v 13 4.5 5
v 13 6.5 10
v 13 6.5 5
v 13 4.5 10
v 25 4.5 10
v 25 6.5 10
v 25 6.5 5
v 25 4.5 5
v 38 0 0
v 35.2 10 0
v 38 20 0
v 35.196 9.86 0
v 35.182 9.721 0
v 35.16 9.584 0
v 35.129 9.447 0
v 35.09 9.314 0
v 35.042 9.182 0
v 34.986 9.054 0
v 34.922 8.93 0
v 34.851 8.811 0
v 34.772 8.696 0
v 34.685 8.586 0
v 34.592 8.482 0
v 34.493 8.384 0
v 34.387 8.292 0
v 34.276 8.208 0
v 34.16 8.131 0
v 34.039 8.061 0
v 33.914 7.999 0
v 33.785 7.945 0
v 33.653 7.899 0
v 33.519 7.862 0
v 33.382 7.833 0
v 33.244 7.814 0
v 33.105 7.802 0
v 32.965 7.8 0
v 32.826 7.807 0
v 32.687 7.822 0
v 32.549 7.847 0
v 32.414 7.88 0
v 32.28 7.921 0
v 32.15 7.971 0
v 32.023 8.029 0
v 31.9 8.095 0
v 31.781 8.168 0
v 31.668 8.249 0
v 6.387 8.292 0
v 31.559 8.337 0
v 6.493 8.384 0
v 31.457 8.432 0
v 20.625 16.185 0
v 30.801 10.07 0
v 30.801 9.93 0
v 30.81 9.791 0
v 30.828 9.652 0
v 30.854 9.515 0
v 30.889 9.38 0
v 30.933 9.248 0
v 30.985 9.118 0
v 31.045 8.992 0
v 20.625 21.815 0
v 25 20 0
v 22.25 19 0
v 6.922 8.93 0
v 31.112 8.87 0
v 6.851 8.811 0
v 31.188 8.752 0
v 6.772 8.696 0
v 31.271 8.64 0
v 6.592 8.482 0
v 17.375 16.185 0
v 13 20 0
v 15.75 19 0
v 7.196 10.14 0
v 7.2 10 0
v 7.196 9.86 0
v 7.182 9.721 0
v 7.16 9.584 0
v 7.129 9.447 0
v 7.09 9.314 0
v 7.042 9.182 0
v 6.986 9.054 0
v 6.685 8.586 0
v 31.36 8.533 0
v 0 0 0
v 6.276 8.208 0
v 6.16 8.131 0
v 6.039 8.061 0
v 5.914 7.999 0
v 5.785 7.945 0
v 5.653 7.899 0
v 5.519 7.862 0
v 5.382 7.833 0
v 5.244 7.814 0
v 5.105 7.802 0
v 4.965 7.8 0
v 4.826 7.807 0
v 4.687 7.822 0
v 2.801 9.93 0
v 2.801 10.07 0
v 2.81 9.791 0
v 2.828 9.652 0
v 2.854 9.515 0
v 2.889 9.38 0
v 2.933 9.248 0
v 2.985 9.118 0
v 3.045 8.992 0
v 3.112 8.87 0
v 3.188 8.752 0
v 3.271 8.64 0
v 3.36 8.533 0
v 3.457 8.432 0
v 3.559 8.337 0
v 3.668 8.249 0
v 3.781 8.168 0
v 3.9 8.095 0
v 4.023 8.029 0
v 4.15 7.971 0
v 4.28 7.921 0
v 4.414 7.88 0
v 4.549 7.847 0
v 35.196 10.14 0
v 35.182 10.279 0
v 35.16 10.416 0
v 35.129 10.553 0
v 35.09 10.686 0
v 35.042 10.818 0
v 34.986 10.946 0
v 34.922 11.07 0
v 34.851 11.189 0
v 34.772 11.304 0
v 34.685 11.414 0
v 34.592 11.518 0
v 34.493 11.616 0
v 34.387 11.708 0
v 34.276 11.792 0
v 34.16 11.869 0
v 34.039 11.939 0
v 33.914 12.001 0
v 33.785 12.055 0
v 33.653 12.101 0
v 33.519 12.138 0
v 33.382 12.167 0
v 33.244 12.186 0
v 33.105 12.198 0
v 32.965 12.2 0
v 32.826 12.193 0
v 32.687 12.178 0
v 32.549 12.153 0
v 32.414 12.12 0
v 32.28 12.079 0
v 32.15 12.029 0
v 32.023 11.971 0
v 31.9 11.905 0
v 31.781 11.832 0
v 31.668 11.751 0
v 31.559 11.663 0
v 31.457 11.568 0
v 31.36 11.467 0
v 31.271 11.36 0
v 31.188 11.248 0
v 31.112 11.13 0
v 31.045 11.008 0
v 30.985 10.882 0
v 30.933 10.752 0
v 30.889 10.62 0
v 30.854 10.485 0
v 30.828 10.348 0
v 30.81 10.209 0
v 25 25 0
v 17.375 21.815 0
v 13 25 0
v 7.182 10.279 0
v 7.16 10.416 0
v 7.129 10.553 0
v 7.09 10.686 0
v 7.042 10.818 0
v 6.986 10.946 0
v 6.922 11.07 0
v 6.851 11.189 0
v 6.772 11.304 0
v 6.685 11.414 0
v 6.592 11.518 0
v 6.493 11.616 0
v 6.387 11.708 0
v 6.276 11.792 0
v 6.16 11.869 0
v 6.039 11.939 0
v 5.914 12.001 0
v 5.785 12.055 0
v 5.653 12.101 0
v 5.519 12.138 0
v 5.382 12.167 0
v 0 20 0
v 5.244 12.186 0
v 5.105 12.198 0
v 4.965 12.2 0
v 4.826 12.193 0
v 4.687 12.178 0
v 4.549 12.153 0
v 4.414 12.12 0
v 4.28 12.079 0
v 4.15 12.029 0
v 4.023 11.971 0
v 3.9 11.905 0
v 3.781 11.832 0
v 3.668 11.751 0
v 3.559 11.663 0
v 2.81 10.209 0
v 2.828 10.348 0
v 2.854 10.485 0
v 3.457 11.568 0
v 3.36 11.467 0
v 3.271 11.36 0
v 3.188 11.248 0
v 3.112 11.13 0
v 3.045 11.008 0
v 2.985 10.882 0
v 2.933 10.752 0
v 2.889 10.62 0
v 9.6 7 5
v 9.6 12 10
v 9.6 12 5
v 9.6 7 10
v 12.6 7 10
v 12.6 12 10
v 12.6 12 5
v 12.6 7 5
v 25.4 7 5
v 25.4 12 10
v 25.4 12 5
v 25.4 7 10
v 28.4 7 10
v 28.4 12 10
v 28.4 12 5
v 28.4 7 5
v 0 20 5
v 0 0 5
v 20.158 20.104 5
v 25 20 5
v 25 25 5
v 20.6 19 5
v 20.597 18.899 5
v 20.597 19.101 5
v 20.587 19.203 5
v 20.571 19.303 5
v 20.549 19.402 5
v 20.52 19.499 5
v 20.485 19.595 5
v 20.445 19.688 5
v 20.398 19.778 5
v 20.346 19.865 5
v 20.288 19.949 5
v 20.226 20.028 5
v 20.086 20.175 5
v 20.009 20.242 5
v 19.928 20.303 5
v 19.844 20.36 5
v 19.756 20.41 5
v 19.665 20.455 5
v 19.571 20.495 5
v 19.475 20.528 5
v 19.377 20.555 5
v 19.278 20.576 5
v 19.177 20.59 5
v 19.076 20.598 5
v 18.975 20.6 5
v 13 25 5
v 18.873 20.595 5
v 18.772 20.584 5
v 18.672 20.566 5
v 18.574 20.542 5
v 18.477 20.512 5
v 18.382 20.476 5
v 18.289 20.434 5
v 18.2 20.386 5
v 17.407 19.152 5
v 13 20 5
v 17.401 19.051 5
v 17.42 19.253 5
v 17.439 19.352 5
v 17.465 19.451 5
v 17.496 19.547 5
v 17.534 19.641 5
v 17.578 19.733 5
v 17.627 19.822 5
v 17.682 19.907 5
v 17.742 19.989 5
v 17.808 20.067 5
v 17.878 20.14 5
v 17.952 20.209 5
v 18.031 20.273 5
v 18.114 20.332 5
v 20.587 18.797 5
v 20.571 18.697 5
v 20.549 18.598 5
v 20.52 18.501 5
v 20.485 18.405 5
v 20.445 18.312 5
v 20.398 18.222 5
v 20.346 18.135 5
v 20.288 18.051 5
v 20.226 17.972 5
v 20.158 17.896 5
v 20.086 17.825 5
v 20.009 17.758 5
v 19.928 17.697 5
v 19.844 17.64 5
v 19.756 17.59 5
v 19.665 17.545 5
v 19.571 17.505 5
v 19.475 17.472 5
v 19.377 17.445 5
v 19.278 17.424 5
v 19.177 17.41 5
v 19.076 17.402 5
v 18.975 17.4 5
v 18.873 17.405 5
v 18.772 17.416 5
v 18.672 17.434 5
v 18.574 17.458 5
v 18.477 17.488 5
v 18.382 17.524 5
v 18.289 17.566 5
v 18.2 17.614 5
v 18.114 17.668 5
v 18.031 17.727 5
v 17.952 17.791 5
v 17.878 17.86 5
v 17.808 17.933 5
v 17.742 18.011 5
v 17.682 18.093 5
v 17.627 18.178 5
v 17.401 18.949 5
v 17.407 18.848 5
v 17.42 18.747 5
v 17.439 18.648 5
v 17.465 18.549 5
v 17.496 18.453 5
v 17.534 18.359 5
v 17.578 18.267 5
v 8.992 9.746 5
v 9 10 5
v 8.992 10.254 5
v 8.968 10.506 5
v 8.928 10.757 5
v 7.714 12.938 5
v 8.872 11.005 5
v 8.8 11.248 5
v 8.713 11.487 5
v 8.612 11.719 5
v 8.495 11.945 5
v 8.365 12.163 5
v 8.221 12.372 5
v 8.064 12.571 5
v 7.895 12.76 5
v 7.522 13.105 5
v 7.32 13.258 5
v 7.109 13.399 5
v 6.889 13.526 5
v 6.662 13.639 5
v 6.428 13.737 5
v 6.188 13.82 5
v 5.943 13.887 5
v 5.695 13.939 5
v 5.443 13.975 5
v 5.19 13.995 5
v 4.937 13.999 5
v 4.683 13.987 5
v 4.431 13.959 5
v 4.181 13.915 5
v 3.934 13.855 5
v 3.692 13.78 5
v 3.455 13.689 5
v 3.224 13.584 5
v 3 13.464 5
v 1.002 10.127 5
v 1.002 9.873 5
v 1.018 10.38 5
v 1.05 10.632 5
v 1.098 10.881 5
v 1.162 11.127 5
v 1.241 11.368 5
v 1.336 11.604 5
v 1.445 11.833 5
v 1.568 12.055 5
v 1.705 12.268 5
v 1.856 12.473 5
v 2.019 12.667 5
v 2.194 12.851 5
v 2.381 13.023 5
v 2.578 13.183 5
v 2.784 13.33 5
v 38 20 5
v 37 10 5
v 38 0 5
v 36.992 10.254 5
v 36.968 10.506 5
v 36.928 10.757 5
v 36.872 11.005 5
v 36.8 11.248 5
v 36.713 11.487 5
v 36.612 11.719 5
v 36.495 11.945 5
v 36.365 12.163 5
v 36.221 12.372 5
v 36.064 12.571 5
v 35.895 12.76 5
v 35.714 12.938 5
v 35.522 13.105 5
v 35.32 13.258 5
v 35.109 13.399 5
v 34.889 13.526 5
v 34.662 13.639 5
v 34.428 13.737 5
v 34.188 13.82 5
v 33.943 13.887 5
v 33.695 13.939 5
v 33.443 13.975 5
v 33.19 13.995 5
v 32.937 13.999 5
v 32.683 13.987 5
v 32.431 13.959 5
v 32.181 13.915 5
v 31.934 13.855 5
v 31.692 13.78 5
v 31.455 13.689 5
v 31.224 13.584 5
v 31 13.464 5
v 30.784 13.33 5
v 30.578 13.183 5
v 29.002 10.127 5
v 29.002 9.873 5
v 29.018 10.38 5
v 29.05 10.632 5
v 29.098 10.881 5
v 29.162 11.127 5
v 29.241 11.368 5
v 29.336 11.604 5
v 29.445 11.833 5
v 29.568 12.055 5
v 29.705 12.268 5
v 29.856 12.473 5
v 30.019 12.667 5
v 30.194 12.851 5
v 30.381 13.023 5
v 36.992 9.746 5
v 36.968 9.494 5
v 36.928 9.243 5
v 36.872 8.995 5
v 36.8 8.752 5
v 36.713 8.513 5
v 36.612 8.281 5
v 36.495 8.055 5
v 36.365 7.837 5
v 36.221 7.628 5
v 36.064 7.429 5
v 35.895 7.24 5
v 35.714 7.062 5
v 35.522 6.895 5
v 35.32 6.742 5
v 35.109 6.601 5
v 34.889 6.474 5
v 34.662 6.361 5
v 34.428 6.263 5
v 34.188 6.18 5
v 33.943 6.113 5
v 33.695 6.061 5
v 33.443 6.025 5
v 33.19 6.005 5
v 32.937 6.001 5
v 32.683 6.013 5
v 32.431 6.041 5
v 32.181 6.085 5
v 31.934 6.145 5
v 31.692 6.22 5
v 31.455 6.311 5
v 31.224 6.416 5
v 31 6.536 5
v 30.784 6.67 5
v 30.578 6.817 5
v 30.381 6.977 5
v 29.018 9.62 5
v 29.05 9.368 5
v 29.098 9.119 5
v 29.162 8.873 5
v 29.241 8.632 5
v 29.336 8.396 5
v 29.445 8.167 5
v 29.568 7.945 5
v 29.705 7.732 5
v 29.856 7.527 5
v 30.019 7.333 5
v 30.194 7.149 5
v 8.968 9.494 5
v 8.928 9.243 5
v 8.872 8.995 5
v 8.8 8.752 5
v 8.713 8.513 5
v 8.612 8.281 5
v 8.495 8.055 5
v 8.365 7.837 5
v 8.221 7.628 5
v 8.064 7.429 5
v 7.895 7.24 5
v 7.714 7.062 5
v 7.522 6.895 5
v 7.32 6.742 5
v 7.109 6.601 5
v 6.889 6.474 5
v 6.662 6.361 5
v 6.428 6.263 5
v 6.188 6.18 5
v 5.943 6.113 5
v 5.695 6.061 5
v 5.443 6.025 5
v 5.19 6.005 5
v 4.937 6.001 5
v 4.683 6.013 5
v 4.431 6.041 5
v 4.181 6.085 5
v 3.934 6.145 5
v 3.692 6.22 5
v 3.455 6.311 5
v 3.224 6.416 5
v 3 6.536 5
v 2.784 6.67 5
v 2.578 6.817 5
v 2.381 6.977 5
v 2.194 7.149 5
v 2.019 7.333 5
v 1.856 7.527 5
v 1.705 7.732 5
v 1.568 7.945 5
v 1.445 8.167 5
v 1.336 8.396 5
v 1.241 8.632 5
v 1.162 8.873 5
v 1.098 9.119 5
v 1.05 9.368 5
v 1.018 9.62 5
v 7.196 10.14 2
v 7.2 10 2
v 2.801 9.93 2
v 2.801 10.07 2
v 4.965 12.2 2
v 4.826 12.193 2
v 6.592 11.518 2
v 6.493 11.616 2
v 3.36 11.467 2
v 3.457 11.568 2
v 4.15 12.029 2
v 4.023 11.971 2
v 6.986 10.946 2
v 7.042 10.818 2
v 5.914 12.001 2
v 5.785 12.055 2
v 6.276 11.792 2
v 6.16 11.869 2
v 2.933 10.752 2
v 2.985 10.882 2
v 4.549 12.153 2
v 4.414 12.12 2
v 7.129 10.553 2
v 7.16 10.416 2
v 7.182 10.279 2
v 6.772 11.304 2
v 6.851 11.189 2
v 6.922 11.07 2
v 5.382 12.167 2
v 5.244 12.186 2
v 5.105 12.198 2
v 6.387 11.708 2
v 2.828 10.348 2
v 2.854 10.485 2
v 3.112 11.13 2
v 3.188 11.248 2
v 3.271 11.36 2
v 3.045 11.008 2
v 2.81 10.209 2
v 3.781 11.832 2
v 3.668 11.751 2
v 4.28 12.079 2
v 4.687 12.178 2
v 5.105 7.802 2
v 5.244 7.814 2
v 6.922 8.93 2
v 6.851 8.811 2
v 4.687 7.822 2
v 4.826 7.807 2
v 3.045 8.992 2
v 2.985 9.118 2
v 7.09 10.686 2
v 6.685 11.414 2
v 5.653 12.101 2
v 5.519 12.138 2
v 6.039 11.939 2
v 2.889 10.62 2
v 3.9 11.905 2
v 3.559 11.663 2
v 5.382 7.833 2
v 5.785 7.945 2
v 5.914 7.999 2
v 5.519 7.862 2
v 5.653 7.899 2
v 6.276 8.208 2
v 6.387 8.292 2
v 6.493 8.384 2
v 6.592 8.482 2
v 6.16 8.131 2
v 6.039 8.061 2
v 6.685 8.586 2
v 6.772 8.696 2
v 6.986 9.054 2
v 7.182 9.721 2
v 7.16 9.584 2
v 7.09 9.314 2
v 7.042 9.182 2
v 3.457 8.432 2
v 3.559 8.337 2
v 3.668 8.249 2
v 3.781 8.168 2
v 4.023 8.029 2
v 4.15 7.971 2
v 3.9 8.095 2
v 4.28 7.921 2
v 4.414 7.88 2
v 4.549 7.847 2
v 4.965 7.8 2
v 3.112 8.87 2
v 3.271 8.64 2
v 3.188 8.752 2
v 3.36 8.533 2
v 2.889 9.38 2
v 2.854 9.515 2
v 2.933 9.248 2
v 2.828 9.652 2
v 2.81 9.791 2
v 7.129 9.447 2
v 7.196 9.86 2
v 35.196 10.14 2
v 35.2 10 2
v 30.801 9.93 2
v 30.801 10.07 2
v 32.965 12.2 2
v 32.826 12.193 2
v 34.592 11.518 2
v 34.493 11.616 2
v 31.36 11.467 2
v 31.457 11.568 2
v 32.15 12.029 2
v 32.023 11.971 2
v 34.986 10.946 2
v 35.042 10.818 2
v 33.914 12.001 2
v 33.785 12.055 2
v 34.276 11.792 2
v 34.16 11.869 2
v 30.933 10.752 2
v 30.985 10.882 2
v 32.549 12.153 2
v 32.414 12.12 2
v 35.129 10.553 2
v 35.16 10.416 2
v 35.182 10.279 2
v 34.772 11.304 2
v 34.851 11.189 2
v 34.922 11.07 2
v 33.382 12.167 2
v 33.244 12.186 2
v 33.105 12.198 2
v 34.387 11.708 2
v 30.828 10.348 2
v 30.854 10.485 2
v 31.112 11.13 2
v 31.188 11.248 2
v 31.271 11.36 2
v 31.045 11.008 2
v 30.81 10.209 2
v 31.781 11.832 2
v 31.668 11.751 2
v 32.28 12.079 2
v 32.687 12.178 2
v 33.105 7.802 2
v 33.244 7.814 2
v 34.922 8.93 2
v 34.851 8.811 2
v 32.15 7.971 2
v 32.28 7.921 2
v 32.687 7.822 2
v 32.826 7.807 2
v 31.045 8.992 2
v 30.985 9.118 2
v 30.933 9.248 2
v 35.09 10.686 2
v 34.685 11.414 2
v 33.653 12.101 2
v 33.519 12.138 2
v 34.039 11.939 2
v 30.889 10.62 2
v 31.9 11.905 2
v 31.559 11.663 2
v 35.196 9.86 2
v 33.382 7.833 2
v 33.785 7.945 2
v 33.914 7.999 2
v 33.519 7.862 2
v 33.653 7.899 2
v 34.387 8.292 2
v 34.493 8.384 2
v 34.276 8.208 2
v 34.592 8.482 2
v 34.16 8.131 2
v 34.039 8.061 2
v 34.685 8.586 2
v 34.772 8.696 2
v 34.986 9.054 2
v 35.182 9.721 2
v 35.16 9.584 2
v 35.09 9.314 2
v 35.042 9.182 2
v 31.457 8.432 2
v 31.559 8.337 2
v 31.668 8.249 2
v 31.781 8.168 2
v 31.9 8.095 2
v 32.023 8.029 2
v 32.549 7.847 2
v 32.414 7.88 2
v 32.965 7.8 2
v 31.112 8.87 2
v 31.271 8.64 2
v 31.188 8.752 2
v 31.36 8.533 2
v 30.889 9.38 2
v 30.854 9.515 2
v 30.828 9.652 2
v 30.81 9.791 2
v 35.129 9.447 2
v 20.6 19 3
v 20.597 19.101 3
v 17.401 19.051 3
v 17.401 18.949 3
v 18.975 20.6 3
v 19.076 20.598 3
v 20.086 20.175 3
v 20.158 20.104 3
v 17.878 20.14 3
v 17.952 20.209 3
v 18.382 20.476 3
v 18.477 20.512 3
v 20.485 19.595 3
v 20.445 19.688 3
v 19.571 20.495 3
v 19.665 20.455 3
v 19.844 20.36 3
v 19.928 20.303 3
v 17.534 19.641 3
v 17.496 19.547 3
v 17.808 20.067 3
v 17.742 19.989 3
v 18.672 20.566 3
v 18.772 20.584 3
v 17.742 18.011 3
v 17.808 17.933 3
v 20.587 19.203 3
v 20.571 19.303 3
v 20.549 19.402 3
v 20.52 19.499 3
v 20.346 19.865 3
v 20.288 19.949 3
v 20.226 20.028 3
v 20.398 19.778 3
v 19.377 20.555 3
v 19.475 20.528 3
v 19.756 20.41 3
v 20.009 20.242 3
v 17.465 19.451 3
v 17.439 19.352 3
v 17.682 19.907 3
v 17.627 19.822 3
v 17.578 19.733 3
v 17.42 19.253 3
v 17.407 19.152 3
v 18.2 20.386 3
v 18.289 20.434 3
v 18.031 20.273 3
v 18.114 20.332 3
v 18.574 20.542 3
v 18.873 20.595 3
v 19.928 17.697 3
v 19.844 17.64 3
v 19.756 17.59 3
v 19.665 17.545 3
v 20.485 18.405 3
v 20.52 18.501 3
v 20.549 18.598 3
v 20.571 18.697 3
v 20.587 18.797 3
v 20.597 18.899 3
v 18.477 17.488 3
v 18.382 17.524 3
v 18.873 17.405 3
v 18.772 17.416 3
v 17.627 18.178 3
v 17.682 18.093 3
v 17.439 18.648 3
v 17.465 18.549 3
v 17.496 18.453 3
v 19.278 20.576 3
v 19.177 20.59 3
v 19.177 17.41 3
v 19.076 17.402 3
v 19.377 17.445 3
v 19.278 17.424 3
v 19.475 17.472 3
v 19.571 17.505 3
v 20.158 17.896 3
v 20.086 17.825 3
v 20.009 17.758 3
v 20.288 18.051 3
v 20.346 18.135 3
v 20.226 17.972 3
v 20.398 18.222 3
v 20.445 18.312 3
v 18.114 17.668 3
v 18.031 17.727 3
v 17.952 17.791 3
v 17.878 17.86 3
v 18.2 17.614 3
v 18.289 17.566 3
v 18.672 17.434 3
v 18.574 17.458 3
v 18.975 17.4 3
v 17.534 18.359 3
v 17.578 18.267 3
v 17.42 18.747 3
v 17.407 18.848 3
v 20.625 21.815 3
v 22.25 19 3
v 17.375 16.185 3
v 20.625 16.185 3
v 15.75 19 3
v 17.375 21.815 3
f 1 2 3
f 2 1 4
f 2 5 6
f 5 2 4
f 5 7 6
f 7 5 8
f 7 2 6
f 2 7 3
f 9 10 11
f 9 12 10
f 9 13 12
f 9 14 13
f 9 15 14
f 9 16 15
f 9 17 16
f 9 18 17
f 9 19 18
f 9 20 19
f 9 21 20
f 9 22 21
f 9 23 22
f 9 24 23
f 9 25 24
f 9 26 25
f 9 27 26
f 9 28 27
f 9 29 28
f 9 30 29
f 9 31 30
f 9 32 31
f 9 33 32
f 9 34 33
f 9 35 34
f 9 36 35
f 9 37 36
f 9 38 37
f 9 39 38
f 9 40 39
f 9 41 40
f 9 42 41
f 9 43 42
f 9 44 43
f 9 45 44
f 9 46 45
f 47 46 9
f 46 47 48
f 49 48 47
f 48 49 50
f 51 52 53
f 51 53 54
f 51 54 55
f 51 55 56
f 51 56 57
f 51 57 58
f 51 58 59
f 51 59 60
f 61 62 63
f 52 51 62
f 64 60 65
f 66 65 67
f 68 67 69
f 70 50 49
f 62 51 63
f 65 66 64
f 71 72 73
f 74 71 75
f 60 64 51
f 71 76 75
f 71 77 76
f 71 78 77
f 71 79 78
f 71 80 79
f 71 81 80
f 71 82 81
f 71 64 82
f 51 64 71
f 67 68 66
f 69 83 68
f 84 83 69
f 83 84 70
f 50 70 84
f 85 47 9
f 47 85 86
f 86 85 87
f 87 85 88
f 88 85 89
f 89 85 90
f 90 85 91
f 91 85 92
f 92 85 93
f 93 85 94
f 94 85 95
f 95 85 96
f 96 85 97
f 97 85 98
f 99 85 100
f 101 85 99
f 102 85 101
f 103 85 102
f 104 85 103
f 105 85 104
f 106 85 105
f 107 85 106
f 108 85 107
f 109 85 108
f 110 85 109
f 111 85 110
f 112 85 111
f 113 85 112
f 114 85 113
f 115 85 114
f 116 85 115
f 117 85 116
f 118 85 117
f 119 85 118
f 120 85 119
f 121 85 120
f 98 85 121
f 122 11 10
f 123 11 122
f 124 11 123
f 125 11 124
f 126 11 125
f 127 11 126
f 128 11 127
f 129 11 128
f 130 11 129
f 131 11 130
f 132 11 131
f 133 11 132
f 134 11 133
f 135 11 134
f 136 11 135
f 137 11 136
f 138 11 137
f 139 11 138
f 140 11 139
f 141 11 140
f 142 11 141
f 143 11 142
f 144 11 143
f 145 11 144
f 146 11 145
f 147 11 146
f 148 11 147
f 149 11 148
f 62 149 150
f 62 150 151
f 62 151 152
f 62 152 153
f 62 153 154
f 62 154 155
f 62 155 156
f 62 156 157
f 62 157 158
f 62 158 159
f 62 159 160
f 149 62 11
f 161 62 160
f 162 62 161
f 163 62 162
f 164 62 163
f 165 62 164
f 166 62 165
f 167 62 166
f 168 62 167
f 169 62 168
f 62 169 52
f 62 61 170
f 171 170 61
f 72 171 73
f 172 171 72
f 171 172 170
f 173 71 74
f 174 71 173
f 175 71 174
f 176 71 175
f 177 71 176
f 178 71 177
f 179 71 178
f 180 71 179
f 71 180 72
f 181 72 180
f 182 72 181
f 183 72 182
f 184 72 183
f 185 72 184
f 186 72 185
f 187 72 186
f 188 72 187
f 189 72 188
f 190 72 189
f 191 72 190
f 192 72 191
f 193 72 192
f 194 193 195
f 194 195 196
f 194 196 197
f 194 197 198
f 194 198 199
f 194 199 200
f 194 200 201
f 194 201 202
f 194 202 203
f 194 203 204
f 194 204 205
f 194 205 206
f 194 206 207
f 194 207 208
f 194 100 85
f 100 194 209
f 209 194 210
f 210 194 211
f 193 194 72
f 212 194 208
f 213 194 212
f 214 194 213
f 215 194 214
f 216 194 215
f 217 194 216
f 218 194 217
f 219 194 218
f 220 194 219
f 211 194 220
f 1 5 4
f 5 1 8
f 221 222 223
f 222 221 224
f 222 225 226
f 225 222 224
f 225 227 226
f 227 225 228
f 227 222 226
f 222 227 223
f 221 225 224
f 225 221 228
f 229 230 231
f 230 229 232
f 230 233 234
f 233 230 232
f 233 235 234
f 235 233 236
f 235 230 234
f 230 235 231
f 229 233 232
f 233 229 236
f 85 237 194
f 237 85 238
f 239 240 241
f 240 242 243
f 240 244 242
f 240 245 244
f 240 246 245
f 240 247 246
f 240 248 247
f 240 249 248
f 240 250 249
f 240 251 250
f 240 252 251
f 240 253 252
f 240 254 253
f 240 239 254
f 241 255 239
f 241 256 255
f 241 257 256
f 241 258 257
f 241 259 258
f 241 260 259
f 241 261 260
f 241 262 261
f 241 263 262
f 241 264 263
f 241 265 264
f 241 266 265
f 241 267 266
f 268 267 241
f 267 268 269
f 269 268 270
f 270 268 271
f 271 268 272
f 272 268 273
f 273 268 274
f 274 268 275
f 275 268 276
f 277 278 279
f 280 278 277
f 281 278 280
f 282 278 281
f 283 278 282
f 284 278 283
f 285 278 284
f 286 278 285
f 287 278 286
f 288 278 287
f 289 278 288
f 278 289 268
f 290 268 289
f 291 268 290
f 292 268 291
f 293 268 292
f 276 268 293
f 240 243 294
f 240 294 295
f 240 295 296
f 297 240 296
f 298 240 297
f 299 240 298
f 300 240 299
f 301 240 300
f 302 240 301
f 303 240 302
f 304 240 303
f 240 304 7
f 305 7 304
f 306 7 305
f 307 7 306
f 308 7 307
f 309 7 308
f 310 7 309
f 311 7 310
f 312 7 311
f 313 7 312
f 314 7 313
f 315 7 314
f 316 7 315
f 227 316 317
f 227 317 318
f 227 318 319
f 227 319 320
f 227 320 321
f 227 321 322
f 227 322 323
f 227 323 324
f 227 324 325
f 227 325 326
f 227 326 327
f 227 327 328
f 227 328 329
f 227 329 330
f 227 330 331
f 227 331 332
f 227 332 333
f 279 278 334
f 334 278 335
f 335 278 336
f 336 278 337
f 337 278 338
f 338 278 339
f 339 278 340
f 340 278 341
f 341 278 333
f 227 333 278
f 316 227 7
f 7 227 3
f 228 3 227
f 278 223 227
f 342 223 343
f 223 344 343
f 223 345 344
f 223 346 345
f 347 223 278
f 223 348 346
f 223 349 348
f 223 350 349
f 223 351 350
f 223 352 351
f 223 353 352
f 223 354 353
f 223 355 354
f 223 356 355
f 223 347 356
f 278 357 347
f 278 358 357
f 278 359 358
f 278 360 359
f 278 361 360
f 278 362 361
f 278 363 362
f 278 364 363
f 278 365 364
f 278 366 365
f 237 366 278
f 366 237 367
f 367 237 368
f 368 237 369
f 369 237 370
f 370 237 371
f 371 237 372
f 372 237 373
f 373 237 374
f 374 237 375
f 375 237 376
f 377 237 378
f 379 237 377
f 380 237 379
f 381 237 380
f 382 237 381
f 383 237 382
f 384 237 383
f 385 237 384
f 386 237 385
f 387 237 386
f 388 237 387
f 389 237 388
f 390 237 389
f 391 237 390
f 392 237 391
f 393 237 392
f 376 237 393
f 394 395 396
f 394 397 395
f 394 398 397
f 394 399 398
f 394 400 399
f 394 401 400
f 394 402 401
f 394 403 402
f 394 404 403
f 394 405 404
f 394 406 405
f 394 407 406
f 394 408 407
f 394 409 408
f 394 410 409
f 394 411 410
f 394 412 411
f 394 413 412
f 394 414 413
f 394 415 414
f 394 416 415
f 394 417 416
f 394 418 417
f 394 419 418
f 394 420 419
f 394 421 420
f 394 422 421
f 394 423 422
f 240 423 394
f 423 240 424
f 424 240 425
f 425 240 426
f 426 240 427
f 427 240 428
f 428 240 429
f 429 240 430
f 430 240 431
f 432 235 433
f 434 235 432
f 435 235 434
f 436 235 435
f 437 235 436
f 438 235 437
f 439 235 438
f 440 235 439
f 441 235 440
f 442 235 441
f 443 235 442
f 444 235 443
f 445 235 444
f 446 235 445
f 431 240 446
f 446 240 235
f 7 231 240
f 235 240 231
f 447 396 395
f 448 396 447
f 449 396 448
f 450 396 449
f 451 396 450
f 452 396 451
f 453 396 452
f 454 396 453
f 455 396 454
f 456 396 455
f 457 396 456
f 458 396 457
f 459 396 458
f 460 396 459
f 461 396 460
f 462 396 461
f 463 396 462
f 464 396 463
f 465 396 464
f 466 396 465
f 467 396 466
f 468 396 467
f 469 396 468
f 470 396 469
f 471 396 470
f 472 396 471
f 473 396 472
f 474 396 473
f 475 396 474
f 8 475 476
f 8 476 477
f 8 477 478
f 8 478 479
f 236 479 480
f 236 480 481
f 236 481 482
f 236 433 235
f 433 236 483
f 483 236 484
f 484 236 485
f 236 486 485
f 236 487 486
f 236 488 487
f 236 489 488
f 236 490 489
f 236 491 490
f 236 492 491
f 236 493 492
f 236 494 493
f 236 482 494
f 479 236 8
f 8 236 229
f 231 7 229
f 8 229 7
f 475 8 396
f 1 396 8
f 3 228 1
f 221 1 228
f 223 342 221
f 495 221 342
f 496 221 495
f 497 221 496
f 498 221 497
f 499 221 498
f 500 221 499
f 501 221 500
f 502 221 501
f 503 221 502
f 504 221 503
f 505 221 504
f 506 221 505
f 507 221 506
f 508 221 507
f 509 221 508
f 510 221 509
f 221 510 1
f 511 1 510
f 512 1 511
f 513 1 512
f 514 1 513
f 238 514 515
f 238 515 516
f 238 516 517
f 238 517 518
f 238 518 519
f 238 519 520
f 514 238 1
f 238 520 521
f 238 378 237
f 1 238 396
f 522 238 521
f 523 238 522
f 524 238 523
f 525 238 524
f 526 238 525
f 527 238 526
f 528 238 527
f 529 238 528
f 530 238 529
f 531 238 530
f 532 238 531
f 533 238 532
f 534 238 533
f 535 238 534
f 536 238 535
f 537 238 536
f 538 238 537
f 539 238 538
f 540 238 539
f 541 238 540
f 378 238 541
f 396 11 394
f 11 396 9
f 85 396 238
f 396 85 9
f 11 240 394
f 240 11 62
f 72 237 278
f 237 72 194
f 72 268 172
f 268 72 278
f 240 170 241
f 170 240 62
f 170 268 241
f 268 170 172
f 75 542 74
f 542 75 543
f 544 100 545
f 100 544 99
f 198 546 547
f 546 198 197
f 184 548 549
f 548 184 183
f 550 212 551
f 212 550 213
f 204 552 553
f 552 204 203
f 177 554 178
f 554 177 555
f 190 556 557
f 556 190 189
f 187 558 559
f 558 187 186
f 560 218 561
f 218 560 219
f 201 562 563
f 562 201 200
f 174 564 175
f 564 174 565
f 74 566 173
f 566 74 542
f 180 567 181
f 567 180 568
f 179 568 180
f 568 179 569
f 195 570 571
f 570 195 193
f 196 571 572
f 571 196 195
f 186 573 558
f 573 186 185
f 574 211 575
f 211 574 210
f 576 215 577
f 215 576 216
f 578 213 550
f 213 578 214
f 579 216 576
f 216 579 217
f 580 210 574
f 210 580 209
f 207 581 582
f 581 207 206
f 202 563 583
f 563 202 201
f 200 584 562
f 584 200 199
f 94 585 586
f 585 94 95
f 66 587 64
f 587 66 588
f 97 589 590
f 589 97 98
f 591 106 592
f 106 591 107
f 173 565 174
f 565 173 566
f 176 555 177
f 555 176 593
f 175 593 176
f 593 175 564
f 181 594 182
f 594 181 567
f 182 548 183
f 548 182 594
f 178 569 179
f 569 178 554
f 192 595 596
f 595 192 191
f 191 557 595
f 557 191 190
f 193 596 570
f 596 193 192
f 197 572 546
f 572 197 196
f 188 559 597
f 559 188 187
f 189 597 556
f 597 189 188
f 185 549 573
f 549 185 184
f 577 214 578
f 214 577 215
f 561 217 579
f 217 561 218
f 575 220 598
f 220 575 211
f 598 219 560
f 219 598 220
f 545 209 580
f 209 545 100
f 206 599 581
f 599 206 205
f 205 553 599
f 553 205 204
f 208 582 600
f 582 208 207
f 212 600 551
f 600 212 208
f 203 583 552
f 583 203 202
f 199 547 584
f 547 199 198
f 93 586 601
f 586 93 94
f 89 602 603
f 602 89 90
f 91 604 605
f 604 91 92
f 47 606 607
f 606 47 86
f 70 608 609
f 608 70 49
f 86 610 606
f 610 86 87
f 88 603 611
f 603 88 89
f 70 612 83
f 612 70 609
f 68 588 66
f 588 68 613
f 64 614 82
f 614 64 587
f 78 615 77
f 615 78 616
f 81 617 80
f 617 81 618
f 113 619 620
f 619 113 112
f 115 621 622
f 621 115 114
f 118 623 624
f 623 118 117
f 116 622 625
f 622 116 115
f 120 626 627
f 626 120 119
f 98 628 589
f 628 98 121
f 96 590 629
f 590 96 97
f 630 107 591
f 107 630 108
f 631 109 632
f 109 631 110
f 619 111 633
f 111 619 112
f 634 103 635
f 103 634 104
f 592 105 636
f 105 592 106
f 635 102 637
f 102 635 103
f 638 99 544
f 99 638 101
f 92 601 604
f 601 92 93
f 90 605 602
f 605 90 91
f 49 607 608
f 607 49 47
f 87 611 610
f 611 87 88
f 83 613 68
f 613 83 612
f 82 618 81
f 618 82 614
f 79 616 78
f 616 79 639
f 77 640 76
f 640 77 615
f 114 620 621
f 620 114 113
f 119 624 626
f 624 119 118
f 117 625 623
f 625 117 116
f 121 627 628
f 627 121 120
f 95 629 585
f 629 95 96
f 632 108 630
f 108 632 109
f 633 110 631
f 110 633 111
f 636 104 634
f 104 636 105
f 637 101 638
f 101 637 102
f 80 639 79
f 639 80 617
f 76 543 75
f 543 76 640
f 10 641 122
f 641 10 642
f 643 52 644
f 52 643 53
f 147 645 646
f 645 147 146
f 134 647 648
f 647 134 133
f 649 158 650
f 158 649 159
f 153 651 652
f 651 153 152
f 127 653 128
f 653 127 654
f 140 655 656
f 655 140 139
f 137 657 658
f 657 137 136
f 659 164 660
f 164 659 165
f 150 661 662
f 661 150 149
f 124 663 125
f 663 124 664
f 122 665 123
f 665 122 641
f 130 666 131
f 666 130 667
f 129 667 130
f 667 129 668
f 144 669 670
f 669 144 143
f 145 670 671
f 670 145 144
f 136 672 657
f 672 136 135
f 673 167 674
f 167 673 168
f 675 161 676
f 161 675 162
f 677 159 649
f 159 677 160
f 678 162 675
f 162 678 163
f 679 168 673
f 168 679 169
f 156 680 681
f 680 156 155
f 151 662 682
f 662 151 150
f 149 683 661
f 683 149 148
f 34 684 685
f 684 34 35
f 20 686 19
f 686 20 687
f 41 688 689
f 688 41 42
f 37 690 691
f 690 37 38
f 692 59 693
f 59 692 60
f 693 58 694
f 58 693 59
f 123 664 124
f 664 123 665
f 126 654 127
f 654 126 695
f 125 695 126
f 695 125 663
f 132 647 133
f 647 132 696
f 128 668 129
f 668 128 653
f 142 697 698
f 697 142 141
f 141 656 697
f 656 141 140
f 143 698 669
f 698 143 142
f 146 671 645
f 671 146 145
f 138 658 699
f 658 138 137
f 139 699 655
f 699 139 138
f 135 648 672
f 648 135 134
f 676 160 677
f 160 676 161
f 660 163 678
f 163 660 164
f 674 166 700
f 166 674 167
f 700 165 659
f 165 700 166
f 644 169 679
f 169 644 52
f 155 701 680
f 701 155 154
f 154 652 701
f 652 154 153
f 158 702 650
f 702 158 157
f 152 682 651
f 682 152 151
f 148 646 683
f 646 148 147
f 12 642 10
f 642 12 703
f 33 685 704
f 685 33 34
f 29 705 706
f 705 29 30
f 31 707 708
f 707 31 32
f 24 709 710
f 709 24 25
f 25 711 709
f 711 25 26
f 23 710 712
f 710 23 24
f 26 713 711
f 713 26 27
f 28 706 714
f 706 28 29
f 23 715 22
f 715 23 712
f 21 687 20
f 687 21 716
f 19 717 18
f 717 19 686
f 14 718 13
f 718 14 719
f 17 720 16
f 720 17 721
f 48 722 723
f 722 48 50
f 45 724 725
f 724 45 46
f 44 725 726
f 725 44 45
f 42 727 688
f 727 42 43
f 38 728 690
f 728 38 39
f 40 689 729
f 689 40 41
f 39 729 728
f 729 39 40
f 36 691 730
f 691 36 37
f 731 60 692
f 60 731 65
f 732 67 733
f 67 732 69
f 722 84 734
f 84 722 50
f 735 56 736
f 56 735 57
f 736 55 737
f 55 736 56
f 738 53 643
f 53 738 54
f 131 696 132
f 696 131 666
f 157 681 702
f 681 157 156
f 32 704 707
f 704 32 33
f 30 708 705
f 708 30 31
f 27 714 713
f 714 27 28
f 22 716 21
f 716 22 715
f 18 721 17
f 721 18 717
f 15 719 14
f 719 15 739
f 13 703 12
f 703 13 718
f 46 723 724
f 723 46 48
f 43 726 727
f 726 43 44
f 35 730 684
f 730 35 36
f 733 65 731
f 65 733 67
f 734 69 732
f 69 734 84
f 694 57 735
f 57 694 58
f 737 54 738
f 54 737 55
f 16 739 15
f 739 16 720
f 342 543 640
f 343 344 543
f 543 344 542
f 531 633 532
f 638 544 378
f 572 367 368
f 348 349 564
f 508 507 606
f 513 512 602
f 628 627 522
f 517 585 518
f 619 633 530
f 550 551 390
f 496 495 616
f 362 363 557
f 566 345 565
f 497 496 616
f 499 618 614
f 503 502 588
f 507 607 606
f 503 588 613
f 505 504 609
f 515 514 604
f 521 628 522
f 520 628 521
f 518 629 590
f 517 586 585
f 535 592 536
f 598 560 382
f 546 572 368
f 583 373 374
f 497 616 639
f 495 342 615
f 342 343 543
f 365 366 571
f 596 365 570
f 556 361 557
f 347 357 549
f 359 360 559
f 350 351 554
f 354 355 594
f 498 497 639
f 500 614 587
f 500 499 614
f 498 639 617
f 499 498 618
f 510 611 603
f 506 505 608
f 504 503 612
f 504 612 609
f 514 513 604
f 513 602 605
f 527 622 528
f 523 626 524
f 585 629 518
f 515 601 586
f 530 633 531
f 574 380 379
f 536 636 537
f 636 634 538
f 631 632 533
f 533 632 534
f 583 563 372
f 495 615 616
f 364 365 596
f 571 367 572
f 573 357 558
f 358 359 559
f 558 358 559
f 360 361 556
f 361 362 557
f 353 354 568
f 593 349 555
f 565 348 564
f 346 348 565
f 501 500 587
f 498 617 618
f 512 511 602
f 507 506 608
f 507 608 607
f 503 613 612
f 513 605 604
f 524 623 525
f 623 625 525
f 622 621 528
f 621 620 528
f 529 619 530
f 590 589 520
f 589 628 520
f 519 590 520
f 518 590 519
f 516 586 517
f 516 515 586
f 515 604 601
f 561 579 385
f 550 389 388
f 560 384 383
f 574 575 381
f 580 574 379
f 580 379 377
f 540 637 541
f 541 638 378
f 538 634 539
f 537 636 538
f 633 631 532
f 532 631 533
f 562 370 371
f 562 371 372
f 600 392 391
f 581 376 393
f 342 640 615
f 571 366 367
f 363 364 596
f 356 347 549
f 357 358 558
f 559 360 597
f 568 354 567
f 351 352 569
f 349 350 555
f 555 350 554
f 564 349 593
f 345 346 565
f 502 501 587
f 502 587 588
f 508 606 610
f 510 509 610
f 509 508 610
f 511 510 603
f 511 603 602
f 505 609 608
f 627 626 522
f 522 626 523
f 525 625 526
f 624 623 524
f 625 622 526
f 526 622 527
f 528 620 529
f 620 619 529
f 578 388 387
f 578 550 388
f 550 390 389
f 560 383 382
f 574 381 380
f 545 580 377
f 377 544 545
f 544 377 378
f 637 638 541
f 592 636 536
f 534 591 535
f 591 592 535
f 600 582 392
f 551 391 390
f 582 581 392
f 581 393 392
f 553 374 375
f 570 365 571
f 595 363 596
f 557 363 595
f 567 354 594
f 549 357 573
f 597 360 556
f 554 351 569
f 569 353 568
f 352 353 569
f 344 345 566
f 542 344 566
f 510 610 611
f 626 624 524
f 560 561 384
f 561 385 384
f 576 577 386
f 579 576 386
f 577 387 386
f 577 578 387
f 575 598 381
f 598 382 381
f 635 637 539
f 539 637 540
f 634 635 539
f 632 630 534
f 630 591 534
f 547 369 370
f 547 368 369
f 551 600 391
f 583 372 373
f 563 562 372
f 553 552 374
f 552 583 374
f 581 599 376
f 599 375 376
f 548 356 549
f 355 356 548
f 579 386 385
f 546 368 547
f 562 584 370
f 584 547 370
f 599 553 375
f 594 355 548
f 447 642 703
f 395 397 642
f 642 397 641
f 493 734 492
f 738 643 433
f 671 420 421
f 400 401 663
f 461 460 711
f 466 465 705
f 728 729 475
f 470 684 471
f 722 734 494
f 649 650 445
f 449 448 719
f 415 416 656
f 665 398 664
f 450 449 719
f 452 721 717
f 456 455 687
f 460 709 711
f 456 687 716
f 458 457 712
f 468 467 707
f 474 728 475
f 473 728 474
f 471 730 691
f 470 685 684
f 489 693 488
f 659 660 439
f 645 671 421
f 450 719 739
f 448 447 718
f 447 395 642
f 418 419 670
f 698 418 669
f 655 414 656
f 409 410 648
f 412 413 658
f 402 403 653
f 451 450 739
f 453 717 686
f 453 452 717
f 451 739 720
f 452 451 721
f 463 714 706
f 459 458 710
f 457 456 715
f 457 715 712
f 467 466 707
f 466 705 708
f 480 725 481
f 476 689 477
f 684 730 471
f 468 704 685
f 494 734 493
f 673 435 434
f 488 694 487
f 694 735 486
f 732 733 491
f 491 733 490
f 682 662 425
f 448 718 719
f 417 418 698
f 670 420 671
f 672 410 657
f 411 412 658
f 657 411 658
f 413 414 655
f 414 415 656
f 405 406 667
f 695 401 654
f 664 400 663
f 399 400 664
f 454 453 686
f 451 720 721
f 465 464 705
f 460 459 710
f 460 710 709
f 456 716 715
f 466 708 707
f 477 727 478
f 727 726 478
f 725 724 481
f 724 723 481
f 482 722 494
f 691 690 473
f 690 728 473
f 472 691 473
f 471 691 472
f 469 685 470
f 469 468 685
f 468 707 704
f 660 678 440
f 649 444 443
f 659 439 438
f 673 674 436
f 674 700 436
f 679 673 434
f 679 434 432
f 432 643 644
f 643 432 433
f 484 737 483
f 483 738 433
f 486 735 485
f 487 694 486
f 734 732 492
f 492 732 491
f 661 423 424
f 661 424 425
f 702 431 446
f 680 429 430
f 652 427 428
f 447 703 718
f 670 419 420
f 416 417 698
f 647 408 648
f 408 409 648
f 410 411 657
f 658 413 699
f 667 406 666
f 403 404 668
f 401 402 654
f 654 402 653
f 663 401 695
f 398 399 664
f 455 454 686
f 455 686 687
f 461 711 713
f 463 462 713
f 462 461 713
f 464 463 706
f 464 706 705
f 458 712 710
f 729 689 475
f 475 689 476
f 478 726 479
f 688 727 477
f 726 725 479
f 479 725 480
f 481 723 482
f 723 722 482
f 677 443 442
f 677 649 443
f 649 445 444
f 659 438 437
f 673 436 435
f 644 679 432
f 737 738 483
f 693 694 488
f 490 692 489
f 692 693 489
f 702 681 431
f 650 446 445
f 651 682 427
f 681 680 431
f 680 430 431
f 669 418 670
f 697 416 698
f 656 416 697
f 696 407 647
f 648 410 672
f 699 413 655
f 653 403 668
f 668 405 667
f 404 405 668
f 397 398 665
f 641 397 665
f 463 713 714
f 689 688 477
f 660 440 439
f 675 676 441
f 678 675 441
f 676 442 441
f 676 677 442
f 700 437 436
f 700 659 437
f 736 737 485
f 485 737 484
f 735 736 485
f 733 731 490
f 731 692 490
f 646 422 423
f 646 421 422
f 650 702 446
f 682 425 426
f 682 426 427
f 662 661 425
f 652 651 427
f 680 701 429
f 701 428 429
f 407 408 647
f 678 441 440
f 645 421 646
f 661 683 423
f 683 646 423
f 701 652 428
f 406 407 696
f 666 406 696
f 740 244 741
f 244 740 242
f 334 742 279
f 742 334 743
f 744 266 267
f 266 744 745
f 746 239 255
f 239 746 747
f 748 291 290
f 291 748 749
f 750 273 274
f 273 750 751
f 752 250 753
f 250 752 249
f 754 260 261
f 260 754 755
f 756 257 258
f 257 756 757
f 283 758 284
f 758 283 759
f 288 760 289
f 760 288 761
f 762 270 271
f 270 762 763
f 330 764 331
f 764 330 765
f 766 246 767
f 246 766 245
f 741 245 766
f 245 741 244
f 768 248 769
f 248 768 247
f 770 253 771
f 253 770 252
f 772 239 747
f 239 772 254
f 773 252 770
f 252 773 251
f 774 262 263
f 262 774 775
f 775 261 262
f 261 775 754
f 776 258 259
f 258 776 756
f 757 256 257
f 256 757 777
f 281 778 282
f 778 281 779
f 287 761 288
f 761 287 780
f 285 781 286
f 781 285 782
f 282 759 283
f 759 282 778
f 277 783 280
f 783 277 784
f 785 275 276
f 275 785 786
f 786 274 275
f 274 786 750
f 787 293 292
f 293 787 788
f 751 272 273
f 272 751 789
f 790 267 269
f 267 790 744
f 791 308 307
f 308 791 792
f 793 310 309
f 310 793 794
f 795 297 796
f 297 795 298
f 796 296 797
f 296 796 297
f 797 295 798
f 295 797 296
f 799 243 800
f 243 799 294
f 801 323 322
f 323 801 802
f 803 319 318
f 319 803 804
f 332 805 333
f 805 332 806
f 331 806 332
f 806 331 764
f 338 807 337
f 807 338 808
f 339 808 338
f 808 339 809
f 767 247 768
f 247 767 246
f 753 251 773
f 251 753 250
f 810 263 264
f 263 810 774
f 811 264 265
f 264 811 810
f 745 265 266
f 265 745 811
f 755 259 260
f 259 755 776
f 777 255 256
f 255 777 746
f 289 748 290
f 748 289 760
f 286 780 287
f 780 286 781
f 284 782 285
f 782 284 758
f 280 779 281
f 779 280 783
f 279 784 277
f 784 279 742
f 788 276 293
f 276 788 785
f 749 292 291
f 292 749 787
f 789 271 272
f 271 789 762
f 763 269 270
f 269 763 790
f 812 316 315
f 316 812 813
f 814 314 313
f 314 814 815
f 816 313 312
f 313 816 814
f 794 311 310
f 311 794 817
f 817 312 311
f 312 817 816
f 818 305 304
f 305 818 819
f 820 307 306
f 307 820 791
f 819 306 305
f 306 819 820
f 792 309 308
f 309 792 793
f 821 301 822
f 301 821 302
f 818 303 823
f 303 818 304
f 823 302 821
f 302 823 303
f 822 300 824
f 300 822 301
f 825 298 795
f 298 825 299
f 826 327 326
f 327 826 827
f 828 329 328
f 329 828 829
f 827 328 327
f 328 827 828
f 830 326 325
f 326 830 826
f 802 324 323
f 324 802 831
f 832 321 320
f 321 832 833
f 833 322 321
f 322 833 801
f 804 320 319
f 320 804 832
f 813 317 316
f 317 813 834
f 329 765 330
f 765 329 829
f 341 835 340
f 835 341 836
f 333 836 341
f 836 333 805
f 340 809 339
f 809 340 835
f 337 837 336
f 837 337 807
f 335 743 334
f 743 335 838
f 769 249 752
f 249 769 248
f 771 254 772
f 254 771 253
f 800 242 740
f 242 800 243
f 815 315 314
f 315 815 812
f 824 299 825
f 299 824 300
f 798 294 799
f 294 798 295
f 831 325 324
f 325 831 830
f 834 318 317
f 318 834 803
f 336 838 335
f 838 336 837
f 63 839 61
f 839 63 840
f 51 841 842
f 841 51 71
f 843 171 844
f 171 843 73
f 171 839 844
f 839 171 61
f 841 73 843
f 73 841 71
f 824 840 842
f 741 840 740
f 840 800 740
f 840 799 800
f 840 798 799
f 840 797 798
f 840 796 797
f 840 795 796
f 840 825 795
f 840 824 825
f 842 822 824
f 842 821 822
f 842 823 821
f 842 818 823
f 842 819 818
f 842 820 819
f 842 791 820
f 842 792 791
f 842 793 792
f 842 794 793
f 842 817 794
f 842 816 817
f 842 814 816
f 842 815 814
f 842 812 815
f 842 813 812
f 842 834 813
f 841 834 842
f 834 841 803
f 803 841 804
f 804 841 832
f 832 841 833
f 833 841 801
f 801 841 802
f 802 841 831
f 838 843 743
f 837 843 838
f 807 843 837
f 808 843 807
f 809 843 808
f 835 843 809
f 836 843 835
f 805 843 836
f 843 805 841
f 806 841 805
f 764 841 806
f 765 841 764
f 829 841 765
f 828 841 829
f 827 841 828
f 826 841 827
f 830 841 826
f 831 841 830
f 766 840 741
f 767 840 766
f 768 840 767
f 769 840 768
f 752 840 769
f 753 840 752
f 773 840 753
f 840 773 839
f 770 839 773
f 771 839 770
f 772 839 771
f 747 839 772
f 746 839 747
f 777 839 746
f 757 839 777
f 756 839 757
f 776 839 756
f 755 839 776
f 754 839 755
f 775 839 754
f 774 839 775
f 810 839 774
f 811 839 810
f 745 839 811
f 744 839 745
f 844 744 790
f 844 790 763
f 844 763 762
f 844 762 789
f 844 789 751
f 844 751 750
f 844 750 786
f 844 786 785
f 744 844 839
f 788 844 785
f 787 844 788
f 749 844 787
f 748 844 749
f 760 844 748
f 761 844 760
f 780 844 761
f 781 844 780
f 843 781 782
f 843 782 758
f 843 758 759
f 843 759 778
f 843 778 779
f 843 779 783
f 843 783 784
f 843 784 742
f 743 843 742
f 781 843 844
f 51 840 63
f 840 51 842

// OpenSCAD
$fn=99;
difference () {
union () {    
cube ([38,20,5]);
translate ([10+3,10,0])
cube ([12,15,5]);
translate ([-1,-7,0])
rail();

}
//Screw holes to fix to frame
translate ([5,10,-1])
cylinder (h=30,d=4.4);
translate ([5+28,10,-1])
cylinder (h=30,d=4.4);

//Screw hole sunks to fix to frame
translate ([5,10,2])
cylinder (h=3,d1=4.4, d2=8);
translate ([5+28,10,2])
cylinder (h=3,d1=4.4, d2=8);

//Rail Screw Hole M3
translate ([20-1,20-1,-7])
cylinder (h=30,d=3.2);
//Rail Counter Nut
translate ([20-1,20-1,-7])
cylinder (h=10,d=6.5,$fn=6); 
}

module rail() {
//rail end stop
translate ([14,12-0.5,0])
cube ([12,2,10]);
    
//rail guide
translate ([14-3.4,12+2,0])
cube ([3,5,10]);
    
translate ([14-2+14.4,12+2,0])
cube ([3,5,10]);    
}
